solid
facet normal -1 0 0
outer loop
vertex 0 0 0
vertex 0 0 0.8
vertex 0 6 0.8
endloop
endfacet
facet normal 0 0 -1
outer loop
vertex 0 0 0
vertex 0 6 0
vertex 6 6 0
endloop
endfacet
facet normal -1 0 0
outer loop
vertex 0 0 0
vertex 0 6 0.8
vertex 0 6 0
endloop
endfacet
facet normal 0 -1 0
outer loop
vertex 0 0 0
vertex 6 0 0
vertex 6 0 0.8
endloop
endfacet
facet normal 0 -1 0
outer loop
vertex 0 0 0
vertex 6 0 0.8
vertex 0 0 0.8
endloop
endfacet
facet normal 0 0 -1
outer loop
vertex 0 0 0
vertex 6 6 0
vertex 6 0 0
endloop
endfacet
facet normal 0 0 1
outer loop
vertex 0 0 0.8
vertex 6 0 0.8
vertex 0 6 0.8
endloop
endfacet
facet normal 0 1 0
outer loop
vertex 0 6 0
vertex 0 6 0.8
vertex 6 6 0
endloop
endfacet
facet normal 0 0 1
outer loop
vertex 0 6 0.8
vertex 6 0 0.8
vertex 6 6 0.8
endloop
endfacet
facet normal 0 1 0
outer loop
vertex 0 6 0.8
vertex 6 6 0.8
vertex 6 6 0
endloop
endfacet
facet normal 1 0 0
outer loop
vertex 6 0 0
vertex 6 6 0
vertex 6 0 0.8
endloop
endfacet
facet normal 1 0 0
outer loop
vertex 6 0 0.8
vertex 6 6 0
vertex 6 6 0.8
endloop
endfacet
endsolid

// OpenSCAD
/* Warning, this is a very basic generator with a lot of approximation 
input data : [WGQFN, LMC, 6x6x0.8mm, 80, , A, C04-25442A]
generated by com.zoubworld.electronics.cad.model3d.Basic
Date : Sun Feb 15 10:50:49 CET 2026
*/

//body
color("black")
translate([0,0,0])
cube([6.0,6.0,0.8], center=false);
